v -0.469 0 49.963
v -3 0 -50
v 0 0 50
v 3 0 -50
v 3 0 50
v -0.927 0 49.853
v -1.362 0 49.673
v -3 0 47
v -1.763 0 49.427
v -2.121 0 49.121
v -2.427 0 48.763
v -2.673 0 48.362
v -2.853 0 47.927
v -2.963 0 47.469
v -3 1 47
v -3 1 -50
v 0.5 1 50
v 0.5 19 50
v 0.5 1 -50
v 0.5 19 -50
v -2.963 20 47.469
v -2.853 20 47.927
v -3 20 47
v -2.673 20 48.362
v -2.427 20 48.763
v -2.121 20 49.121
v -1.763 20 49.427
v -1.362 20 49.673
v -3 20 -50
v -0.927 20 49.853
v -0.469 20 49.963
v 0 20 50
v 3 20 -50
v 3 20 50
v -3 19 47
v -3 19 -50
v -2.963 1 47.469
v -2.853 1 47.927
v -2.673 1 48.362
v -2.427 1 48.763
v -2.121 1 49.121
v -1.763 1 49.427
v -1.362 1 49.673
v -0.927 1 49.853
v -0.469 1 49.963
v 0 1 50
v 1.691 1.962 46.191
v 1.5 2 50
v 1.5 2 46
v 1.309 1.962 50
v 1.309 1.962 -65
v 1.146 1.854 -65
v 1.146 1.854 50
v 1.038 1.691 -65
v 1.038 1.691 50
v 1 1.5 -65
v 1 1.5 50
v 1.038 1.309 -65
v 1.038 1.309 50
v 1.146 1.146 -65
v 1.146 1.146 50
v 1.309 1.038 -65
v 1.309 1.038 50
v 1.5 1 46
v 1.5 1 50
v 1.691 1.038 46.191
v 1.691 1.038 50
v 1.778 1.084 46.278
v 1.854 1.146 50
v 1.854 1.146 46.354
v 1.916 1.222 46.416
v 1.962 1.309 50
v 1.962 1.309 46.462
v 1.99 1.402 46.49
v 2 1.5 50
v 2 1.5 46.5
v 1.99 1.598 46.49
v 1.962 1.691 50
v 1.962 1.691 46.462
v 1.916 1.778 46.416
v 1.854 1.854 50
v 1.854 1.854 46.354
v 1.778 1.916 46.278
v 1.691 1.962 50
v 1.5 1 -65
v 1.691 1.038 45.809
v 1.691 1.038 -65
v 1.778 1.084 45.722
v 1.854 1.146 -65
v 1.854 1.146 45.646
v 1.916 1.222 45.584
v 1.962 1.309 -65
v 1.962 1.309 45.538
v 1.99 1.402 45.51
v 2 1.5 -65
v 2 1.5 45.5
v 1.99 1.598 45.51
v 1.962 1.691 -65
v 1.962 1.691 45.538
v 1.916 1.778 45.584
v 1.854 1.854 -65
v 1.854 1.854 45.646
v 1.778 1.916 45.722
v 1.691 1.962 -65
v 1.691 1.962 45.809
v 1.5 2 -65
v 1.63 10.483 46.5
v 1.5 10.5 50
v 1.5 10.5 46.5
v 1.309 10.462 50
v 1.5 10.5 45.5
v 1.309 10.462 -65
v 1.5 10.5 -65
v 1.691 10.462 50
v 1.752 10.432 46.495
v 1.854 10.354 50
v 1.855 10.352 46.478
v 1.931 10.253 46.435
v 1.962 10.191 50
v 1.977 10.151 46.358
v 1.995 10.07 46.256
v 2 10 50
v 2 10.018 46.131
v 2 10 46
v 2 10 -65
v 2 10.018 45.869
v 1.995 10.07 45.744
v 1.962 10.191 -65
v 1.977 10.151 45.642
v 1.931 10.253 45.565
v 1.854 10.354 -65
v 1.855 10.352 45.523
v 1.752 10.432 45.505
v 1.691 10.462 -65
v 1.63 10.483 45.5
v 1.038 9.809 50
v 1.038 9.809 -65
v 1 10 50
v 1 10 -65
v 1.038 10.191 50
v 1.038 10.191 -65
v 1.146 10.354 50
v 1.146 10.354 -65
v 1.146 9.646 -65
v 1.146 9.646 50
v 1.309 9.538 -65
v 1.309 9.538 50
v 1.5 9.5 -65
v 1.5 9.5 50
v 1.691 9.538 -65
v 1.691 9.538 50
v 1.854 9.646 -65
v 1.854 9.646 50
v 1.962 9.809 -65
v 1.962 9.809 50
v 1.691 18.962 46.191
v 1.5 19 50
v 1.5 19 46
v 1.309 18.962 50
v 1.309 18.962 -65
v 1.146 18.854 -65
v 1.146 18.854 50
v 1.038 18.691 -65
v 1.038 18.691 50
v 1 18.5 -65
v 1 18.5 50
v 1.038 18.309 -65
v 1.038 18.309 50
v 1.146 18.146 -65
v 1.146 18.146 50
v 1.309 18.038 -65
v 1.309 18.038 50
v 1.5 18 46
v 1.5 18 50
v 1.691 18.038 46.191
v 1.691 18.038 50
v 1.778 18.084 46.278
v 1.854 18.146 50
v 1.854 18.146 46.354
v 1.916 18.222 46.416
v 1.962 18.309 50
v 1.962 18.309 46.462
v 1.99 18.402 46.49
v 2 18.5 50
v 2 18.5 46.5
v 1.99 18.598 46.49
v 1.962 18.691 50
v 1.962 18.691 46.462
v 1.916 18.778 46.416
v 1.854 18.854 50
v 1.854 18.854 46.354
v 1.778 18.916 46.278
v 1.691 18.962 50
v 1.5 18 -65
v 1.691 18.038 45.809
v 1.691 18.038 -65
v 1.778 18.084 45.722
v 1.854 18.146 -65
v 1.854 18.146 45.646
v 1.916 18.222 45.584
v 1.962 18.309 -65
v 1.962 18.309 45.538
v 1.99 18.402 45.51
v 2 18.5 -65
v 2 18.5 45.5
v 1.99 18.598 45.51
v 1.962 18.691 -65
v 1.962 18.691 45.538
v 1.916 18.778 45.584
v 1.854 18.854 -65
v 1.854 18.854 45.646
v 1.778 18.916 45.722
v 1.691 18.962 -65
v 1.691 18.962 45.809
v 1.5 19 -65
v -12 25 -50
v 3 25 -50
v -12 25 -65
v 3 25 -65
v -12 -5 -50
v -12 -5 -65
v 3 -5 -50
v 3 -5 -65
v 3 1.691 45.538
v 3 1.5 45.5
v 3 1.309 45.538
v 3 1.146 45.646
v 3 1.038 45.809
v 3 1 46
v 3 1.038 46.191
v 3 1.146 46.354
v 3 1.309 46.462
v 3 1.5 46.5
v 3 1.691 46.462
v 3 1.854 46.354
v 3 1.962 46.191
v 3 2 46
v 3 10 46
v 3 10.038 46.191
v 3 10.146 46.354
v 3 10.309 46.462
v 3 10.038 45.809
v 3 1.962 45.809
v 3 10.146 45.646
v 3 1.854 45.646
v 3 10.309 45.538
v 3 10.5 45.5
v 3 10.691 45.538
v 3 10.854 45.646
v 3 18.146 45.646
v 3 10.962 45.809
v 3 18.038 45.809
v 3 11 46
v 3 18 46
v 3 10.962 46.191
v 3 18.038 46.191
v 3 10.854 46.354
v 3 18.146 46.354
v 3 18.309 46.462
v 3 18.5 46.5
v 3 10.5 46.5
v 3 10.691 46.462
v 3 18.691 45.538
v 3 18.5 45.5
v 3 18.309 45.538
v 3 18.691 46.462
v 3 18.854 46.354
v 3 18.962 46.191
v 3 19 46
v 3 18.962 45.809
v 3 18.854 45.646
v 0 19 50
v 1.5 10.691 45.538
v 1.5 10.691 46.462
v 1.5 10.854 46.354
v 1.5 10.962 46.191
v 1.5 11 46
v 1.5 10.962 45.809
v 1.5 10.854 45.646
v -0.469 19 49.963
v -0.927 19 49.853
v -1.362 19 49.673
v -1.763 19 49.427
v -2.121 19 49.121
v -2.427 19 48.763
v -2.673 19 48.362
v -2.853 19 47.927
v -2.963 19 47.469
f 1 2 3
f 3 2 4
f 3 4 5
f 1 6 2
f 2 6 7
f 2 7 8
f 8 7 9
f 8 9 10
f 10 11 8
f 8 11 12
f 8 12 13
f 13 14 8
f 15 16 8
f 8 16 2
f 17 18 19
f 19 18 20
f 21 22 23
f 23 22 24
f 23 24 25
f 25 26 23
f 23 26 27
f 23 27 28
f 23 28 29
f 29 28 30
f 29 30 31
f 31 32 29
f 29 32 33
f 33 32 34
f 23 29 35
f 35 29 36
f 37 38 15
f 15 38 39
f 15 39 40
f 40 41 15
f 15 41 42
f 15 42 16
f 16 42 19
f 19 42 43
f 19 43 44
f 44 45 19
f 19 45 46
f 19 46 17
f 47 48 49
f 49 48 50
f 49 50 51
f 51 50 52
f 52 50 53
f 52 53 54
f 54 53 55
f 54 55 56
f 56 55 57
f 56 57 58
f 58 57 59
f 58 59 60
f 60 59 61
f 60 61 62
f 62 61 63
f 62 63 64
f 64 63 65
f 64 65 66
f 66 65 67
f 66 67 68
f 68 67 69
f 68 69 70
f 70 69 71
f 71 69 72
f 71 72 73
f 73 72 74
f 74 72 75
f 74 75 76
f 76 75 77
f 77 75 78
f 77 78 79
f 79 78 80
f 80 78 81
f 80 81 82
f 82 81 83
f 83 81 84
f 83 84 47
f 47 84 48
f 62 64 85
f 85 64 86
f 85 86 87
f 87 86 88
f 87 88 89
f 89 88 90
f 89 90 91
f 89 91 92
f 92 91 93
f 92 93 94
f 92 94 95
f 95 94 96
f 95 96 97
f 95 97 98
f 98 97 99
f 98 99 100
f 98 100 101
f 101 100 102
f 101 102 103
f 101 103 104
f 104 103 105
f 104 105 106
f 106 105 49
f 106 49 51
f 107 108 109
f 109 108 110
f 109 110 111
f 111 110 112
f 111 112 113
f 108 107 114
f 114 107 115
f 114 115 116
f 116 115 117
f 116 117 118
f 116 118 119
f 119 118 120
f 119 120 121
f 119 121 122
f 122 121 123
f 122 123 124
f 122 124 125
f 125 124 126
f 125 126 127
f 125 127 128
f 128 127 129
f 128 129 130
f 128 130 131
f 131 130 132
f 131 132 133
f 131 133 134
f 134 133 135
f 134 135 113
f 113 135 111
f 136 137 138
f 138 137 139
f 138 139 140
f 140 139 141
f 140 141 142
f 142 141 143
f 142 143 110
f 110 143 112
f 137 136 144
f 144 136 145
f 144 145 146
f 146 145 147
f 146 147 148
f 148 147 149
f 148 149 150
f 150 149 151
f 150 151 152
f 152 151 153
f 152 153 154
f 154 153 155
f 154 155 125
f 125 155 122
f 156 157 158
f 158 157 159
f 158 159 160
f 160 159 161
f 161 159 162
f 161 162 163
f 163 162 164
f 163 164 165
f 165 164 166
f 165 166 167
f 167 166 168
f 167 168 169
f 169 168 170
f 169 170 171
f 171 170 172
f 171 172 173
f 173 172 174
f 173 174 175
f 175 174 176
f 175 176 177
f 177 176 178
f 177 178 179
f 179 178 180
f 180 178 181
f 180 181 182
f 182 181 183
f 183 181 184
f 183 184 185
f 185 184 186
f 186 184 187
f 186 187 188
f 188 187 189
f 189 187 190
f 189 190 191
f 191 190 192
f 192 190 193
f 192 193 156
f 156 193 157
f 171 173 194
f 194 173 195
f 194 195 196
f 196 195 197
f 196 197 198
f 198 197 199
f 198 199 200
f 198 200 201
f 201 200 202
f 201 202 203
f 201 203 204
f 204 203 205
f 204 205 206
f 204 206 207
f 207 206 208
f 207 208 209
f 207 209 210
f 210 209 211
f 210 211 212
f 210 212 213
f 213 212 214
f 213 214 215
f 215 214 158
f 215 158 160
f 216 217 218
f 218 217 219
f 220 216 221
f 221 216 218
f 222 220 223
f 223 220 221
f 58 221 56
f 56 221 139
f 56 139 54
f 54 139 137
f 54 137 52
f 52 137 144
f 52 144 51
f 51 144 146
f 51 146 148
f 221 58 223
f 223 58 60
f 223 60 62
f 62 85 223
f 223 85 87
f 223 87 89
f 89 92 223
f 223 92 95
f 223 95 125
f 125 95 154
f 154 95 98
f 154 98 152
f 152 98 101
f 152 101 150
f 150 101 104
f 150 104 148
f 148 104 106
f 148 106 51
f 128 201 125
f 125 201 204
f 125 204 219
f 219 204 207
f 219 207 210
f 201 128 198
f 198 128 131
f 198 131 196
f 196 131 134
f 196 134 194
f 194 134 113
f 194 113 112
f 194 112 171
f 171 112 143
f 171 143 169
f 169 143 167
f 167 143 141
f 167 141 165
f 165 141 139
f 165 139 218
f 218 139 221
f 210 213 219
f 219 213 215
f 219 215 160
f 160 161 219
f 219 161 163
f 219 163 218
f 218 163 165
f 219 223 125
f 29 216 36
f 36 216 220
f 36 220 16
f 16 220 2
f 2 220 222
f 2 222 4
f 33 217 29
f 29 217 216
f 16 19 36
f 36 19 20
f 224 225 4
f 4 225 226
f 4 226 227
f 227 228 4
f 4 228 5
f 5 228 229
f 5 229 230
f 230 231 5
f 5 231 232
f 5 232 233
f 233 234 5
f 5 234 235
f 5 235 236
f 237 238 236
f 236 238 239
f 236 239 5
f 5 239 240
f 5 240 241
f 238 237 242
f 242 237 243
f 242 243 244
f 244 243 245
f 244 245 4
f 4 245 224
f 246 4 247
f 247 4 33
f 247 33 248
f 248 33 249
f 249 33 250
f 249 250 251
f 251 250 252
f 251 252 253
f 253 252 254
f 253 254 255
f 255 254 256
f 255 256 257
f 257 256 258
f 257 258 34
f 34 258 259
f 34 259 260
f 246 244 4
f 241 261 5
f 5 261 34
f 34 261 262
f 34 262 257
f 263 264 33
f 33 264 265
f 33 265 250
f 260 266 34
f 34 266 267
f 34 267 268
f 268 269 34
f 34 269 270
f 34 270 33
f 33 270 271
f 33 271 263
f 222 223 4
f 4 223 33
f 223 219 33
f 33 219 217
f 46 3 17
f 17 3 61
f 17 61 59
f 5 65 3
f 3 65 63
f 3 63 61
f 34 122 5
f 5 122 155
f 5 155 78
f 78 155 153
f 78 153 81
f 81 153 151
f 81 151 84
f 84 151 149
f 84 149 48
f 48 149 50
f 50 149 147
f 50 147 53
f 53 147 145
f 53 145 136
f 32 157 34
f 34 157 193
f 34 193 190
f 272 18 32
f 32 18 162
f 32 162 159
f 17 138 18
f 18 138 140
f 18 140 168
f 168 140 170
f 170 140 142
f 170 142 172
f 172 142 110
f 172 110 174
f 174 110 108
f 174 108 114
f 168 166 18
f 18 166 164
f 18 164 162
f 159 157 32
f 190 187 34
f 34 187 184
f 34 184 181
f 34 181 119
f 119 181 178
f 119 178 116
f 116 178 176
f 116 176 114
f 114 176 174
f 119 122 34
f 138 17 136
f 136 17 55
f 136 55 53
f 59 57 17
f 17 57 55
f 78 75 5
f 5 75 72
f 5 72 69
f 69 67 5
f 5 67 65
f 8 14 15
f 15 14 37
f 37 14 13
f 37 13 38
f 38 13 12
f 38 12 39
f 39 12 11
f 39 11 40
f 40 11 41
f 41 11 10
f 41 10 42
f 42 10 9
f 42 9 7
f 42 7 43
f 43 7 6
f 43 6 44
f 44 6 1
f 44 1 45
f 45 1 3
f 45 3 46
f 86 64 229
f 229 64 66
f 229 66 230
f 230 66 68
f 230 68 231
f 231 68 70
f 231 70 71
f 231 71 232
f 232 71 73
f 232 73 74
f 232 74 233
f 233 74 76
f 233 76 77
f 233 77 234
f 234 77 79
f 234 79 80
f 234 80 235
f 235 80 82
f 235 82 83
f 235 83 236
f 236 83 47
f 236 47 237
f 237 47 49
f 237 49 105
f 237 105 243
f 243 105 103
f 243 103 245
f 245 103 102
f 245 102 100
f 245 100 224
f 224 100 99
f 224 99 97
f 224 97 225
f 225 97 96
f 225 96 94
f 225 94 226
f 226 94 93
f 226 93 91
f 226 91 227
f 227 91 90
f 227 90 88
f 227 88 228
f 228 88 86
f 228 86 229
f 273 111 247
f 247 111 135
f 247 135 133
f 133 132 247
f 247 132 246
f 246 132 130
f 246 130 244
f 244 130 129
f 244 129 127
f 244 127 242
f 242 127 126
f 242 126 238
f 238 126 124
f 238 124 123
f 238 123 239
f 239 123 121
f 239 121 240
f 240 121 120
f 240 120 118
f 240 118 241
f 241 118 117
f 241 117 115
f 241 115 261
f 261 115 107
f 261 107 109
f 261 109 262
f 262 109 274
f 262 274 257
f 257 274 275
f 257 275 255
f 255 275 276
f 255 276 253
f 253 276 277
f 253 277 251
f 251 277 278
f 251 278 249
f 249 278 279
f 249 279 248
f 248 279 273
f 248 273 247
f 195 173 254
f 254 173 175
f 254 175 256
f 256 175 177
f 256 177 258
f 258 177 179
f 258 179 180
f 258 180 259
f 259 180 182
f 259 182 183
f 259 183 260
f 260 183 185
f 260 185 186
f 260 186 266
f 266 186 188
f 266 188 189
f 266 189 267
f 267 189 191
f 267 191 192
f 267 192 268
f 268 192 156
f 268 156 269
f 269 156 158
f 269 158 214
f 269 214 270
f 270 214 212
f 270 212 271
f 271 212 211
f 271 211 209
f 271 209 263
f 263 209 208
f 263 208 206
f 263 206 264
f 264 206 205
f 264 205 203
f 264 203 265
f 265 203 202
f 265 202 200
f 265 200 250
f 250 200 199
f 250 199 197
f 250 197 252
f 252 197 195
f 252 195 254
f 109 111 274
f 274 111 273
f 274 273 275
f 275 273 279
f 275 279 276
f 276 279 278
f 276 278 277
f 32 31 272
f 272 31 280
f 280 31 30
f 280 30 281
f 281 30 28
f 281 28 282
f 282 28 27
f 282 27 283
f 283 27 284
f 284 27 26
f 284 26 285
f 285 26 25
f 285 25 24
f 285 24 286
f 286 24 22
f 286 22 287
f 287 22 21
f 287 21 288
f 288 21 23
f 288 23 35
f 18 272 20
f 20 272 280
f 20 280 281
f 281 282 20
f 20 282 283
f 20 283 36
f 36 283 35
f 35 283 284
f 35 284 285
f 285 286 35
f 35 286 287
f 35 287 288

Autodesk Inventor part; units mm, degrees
ref_plane "Work Plane2" through (0, 10, 0) normal (0, 1, 0) x (-1, 0, 0)
ref_plane "YZ Plane" through (0, 0, 0) normal (1, 0, 0) x (0, 1, 0)
ref_plane "XY Plane" through (0, 0, 0) normal (0, 0, 1) x (1, 0, 0)
sketch "Sketch1" plane through (0, 0, 0) normal (0, 1, 0) x (-1, 0, 0)
  line L0 (-3, 50) -> (3, 50)
  line L1 (3, 50) -> (3, -50)
  line L2 (3, -50) -> (-3, -50)
  line L3 (-3, -50) -> (-3, 50)
  line L4 (-3, 50) -> (3, -50) construction
  line L5 (3, 50) -> (-3, -50) construction
  point P0 (0, 0)
  dimension "d123" = 6
  dimension "d124" = 100
extrude "Extrusion1" add sketch "Sketch1" along normal blind 20
sketch "Sketch2" plane through (0, 0, -50) normal (0, 0, -1) x (-1, 0, 0)
  line L0 (-3, 25) -> (12, 25)
  line L1 (12, 25) -> (12, -5)
  line L2 (12, -5) -> (-3, -5)
  line L3 (-3, -5) -> (-3, 25)
  line L4 (3, 0) -> (3, 20) projected
  line L5 (-3, 25) -> (12, -5) construction
  line L6 (12, 25) -> (-3, -5) construction
  line L7 (-3, 0) -> (-3, 20) projected
  line L8 (-3, 20) -> (3, 20) projected
  line L9 (0, 20) -> (0, 0) construction
  circle A0 centre (-1.5, 18.5) radius 0.5
  circle A1 centre (-1.5, 10) radius 0.5
  line L10 (-3, 10) -> (3, 10) construction
  circle A2 centre (-1.5, 1.5) radius 0.5
  line L11 (-0.5, 1) -> (-0.5, 19)
  dimension "d125" = 15
  dimension "d126" = 30
  dimension "d127" = 5
  dimension "d128" = 9
  dimension "d129" = 1
  dimension "d130" = 1.5
  dimension "d131" = 1.5
  dimension "d132" = 1
  dimension "d133" = 1.5
  dimension "d134" = 10
extrude "Extrusion21" add sketch "Sketch2" along normal blind 15 contours L0 L1 L2 L3 | A0 | A1 | A2
extrude "Extrusion22" cut sketch "Sketch2" along normal blind 15 and the other way blind 100 contours A0 | A1 | A2
sketch "Sketch15" plane through (-3, 0, 50) normal (0, 0, 1) x (1, 0, 0)
  line L0 (3.5, 1) -> (-3.5, 1)
  line L1 (-3.5, 1) -> (-3.5, 19)
  line L2 (-3.5, 19) -> (3.5, 19)
  line L3 (3.5, 19) -> (3.5, 1)
  line L4 (0, 0) -> (0, 20) projected
  line L5 (3.5, 1) -> (-3.5, 19) construction
  line L6 (-3.5, 1) -> (3.5, 19) construction
  point P0 (3, 0)
  point P1 (0, 10)
  dimension "d145" = 7
  dimension "d146" = 18
extrude "Extrusion24" cut sketch "Sketch15" against normal blind 100
sketch "Sketch16" plane through (3, 0, 50) normal (1, 0, 0) x (0, 0, -1)
  line L0 (100, 20) -> (0, 20) construction
  line L1 (4, 20) -> (4, 0) construction
  line L2 (100, 0) -> (0, 0) construction
  line L3 (0, 0) -> (0, 20) construction
  circle A0 centre (4, 18.5) radius 0.5
  line L4 (0, 10.5) -> (115, 10.5) projected
  circle A1 centre (4, 10.5) radius 0.5
  circle A2 centre (4, 1.5) radius 0.5
  point P0 (50, 0)
  dimension "d149" = 4
  dimension "d150" = 1
  dimension "d151" = 1
  dimension "d152" = 1.5
  dimension "d154" = 1
  dimension "d155" = 1.5
extrude "Extrusion25" cut sketch "Sketch16" against normal blind 1.5
fillet "Fillet4" radius 3 2 edges at (-3, 19.5, 50) (-3, 0.5, 50)
sketch "Sketch6" plane through (0, 10, 0) normal (0, 1, 0) x (-1, 0, 0)
  line L0 (21.0864, 109.726) -> (-9.863, 109.726)
  line L1 (-9.863, 109.726) -> (-9.863, -3.5286)
  line L2 (-9.863, -3.5286) -> (21.0864, -3.5286)
  line L3 (21.0864, -3.5286) -> (21.0864, 109.726)
  point P0 (0, 0)
  dimension "d36" = 113.2546
  dimension "d37" = 30.9494
properties part number "3D_print_actuator_cable_driven"
